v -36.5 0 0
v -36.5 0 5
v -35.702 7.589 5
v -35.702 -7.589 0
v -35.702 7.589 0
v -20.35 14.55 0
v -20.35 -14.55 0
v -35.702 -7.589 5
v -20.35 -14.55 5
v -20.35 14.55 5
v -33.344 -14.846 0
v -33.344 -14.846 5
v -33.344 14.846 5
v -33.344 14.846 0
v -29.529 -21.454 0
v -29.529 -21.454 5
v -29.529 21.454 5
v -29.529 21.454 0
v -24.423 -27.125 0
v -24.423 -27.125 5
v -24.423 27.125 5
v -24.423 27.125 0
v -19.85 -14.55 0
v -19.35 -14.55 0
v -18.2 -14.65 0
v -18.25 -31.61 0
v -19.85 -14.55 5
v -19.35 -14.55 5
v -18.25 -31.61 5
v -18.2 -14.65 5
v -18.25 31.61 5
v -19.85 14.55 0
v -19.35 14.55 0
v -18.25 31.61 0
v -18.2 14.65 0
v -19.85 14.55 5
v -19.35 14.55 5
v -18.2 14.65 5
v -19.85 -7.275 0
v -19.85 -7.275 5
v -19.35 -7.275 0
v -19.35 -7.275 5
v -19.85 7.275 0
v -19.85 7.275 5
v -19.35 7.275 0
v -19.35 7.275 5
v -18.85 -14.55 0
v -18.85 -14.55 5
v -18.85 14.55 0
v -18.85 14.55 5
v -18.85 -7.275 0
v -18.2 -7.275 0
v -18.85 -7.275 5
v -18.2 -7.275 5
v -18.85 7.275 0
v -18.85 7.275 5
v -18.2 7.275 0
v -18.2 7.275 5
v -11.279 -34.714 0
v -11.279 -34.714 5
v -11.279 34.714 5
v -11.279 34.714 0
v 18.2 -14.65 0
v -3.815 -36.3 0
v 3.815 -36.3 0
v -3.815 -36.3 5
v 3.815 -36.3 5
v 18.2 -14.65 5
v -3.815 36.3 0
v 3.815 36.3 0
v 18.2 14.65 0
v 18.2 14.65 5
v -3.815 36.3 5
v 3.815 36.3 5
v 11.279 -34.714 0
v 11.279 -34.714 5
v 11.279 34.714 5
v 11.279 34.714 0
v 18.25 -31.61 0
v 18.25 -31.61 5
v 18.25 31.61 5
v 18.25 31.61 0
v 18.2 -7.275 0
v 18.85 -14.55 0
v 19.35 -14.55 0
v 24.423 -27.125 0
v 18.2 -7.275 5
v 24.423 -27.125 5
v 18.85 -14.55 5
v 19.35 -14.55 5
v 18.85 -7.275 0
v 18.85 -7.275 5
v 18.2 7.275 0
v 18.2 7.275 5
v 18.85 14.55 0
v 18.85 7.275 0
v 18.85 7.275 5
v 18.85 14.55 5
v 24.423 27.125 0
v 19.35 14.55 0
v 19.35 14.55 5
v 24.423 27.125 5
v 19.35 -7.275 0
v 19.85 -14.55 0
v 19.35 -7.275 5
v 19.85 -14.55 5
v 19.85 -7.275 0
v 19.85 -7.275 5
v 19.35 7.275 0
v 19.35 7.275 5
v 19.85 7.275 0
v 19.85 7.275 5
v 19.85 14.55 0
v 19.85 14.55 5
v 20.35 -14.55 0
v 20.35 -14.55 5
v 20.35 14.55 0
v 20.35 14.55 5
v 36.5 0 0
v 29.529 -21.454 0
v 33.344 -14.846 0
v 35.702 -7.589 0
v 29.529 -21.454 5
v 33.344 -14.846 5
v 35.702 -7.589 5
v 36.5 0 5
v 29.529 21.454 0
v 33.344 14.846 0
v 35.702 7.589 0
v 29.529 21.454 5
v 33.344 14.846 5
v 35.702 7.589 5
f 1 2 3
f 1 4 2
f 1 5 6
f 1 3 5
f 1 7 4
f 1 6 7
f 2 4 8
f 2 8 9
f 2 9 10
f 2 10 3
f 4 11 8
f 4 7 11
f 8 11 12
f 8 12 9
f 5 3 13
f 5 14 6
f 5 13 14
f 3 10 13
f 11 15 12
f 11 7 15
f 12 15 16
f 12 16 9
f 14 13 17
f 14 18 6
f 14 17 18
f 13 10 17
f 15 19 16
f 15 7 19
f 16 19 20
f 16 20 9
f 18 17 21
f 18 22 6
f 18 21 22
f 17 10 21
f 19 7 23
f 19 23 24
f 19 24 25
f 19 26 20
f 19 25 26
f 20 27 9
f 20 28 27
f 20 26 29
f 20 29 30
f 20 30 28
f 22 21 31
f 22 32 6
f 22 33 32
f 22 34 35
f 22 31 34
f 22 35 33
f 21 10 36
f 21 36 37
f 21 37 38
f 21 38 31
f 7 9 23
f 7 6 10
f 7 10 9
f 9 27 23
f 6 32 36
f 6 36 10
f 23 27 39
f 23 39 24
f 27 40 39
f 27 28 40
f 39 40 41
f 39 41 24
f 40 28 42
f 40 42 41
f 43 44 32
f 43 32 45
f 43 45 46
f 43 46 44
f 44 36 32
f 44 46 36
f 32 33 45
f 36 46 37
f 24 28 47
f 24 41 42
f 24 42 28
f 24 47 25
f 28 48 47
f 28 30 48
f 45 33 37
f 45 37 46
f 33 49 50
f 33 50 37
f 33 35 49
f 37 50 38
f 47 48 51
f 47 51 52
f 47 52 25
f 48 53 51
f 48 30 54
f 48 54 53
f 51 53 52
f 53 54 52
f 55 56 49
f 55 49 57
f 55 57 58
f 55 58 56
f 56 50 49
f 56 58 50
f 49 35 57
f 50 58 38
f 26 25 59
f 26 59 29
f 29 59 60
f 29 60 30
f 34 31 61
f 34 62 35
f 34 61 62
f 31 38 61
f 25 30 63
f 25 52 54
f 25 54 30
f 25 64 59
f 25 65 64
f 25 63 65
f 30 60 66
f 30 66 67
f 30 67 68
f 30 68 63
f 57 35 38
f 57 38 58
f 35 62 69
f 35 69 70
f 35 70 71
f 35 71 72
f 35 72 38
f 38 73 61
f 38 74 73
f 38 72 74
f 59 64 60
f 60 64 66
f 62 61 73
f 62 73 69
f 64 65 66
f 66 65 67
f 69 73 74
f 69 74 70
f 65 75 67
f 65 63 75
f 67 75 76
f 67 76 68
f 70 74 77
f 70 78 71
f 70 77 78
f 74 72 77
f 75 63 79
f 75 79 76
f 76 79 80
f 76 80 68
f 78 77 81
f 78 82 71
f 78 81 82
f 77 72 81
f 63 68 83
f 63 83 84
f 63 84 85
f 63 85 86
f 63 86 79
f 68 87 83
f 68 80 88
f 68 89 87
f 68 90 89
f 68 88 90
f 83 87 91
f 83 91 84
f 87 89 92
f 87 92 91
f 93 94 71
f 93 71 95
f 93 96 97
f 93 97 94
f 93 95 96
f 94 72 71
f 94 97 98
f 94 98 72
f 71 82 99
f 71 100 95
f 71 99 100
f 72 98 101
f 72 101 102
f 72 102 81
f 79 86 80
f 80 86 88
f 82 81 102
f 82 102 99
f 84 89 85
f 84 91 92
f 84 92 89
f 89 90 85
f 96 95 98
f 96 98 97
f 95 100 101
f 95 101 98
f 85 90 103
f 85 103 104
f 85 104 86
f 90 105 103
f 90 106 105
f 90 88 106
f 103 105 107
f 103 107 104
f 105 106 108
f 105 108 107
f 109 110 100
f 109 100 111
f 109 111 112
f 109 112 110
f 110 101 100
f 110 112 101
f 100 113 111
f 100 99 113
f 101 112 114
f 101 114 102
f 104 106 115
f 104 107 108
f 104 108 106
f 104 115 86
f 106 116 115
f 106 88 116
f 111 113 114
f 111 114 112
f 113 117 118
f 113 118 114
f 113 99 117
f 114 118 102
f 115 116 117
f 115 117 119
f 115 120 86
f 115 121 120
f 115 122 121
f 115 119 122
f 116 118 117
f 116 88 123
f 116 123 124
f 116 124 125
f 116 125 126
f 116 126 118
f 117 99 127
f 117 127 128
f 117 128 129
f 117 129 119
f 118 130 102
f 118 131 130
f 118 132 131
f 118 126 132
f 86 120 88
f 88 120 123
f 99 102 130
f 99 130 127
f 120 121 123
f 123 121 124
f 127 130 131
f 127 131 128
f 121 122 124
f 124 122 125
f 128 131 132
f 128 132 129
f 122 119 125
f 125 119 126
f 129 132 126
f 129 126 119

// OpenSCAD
thick = 5;
w = 38.2;
h = 29.1;
tolerance = 0.1;
finger = 0.5;
diameter=73;

linear_extrude(height = thick) 
difference() {
    circle(d = diameter);
    square(size = [w + (2 * tolerance) - (4 * finger), h + (2 * tolerance)], center = true);
    square(size = [w + (2 * tolerance) + (4 * finger), h / 2], center = true);
    translate(v = [w/2,0,0]) square(size = [finger, h], center = true);
    translate(v = [-w/2,0,0]) square(size = [finger, h], center = true);
    translate(v = [w/2+2*finger,0,0]) square(size = [finger, h], center = true);
    translate(v = [-(w/2+2*finger),0,0]) square(size = [finger, h], center = true);
}
